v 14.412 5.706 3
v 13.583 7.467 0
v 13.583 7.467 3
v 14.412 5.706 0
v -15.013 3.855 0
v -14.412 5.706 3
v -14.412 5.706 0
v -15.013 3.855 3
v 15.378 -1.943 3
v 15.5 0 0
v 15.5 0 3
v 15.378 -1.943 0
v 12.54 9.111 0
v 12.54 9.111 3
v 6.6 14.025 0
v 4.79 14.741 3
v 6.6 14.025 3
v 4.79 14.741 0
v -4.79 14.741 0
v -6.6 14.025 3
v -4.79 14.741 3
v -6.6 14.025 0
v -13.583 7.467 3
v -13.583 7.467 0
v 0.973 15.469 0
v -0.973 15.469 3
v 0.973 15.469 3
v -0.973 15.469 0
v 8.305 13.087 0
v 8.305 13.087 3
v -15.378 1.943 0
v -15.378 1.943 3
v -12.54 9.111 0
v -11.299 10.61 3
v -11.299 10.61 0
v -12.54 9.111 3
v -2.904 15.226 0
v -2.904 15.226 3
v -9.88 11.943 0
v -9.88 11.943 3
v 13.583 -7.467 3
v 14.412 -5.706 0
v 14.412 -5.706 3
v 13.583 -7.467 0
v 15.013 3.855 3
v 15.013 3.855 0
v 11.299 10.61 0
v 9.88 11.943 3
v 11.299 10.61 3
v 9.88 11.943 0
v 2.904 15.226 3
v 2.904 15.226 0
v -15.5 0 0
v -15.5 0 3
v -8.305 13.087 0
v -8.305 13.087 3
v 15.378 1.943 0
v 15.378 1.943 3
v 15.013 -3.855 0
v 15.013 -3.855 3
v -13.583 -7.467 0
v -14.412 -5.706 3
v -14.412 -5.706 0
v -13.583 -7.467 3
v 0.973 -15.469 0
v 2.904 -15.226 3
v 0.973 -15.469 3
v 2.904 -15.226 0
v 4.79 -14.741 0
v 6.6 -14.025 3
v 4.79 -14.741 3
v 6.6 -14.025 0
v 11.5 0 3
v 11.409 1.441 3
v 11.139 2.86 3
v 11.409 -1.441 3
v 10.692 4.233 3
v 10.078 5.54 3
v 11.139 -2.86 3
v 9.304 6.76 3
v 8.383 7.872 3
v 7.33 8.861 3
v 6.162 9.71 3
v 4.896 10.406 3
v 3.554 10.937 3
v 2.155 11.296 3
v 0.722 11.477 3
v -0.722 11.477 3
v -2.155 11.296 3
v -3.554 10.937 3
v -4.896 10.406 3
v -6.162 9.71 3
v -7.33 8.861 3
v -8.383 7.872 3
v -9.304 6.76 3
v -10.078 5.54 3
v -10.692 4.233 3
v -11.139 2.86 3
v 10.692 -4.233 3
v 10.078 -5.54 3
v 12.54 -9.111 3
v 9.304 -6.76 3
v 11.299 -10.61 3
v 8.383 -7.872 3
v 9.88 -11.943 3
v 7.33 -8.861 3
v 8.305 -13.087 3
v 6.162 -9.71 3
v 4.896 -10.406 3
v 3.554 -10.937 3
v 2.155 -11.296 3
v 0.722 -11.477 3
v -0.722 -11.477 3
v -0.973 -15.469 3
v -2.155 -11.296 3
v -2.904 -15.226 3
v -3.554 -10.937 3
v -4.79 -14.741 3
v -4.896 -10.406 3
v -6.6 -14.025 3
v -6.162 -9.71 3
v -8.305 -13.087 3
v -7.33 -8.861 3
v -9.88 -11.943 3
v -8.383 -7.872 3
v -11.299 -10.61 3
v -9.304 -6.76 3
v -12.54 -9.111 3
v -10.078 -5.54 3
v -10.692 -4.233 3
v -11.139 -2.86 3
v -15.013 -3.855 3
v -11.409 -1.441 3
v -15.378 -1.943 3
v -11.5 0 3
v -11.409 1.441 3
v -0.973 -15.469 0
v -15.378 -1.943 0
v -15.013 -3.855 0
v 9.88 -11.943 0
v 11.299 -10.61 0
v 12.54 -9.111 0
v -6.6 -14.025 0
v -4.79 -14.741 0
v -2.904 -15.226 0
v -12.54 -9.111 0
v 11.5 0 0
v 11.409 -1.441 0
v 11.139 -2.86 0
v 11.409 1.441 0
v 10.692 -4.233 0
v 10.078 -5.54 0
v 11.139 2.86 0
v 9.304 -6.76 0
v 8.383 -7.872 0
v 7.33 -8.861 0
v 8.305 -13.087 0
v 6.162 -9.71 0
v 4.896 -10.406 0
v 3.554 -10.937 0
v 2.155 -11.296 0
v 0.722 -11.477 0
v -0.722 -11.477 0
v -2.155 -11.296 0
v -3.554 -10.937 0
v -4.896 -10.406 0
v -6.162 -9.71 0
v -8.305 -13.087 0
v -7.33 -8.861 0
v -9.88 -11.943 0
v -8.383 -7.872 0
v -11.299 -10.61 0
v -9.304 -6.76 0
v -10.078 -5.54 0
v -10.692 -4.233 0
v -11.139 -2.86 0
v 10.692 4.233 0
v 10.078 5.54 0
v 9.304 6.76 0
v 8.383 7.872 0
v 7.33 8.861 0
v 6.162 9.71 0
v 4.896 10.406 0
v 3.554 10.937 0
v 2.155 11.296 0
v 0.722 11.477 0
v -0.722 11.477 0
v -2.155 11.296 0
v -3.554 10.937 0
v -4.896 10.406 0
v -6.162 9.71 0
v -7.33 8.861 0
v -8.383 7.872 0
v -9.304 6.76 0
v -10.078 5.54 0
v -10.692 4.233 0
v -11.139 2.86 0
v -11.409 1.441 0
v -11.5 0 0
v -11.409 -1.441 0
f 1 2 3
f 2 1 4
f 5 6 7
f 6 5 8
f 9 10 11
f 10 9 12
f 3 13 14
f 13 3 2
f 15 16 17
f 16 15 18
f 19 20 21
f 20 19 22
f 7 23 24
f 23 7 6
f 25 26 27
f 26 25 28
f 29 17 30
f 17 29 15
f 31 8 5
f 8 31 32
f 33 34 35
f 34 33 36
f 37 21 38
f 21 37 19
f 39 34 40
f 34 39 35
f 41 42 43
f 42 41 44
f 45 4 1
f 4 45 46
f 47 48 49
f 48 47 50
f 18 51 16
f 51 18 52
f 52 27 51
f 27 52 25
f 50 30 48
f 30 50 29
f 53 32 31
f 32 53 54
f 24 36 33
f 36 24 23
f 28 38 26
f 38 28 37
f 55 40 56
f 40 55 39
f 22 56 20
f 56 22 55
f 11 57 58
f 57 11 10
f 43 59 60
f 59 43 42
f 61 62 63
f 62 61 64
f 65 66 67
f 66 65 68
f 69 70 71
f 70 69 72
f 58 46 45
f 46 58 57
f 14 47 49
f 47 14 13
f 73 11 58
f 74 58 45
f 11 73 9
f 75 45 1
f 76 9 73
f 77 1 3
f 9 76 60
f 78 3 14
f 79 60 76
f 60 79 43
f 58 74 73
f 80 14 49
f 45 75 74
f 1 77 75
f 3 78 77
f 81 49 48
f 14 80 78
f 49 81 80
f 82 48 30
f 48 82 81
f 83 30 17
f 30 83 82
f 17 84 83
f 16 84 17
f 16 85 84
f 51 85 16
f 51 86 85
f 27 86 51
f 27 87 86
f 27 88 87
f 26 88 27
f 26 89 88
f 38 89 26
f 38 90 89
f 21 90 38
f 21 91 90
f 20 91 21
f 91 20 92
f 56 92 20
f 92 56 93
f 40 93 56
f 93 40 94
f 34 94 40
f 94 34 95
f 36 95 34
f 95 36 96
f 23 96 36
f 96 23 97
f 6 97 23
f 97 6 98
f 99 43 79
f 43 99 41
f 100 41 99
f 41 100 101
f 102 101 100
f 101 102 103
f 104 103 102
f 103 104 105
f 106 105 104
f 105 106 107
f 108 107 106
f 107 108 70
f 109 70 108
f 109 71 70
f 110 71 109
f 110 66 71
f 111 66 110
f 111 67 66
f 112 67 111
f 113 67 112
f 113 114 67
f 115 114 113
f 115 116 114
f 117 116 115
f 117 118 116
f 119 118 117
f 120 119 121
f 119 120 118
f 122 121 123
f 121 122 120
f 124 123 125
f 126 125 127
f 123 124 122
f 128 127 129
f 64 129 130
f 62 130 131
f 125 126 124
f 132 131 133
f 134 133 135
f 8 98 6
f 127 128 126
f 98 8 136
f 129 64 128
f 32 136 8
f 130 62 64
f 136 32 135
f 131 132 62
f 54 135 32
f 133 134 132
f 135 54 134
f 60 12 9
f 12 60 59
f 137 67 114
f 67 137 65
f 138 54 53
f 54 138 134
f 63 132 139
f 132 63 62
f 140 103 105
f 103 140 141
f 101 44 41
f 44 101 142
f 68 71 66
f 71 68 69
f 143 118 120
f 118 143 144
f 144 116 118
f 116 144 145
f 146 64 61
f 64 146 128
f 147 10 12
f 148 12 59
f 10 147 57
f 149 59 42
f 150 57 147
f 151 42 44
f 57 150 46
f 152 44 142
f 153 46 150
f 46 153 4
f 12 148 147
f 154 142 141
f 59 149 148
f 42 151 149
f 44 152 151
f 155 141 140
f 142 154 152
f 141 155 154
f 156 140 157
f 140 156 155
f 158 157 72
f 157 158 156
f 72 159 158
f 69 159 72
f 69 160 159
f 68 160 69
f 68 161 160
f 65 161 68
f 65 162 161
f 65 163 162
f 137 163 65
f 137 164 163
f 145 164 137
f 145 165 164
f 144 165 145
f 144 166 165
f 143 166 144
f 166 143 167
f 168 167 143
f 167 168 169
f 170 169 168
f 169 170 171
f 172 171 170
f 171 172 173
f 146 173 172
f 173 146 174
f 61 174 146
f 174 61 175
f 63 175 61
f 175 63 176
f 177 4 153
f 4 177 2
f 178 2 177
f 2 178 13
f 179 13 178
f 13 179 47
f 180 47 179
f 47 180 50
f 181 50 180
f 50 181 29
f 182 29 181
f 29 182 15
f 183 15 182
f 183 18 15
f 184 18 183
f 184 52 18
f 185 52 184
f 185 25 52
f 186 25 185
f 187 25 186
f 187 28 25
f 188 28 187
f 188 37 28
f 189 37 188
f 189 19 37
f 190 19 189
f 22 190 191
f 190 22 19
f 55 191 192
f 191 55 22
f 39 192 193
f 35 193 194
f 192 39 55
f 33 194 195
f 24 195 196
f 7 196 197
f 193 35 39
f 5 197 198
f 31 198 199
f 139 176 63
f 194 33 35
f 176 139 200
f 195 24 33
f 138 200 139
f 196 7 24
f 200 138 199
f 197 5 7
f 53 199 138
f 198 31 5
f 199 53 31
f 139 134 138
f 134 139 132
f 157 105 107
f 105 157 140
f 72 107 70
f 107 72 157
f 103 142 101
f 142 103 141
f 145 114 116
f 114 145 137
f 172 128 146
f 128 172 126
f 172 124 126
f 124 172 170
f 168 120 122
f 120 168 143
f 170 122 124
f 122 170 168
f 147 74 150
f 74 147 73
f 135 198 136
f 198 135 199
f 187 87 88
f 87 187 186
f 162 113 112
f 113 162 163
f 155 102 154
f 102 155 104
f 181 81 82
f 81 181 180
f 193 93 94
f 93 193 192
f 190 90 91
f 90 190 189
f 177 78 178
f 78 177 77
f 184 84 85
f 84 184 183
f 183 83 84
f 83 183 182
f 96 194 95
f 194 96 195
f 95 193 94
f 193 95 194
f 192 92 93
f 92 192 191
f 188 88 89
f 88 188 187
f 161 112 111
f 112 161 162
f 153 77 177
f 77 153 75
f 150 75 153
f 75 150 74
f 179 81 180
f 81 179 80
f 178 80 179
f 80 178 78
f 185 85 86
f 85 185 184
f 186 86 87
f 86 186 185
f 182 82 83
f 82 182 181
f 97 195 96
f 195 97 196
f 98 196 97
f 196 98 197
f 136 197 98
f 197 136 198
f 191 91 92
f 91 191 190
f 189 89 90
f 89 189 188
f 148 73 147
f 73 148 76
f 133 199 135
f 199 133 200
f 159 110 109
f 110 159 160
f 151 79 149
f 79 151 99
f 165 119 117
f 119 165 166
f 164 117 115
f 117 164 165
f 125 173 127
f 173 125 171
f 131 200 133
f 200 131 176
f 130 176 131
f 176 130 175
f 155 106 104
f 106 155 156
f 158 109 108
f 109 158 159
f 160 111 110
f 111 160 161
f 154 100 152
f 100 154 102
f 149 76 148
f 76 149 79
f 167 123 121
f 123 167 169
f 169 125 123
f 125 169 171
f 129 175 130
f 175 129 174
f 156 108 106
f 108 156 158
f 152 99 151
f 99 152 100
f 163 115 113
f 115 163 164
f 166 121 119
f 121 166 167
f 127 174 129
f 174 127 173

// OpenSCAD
$fn=50;

difference(){
    cylinder(3,31/2,31/2);
    cylinder(3,23/2,23/2);
}
